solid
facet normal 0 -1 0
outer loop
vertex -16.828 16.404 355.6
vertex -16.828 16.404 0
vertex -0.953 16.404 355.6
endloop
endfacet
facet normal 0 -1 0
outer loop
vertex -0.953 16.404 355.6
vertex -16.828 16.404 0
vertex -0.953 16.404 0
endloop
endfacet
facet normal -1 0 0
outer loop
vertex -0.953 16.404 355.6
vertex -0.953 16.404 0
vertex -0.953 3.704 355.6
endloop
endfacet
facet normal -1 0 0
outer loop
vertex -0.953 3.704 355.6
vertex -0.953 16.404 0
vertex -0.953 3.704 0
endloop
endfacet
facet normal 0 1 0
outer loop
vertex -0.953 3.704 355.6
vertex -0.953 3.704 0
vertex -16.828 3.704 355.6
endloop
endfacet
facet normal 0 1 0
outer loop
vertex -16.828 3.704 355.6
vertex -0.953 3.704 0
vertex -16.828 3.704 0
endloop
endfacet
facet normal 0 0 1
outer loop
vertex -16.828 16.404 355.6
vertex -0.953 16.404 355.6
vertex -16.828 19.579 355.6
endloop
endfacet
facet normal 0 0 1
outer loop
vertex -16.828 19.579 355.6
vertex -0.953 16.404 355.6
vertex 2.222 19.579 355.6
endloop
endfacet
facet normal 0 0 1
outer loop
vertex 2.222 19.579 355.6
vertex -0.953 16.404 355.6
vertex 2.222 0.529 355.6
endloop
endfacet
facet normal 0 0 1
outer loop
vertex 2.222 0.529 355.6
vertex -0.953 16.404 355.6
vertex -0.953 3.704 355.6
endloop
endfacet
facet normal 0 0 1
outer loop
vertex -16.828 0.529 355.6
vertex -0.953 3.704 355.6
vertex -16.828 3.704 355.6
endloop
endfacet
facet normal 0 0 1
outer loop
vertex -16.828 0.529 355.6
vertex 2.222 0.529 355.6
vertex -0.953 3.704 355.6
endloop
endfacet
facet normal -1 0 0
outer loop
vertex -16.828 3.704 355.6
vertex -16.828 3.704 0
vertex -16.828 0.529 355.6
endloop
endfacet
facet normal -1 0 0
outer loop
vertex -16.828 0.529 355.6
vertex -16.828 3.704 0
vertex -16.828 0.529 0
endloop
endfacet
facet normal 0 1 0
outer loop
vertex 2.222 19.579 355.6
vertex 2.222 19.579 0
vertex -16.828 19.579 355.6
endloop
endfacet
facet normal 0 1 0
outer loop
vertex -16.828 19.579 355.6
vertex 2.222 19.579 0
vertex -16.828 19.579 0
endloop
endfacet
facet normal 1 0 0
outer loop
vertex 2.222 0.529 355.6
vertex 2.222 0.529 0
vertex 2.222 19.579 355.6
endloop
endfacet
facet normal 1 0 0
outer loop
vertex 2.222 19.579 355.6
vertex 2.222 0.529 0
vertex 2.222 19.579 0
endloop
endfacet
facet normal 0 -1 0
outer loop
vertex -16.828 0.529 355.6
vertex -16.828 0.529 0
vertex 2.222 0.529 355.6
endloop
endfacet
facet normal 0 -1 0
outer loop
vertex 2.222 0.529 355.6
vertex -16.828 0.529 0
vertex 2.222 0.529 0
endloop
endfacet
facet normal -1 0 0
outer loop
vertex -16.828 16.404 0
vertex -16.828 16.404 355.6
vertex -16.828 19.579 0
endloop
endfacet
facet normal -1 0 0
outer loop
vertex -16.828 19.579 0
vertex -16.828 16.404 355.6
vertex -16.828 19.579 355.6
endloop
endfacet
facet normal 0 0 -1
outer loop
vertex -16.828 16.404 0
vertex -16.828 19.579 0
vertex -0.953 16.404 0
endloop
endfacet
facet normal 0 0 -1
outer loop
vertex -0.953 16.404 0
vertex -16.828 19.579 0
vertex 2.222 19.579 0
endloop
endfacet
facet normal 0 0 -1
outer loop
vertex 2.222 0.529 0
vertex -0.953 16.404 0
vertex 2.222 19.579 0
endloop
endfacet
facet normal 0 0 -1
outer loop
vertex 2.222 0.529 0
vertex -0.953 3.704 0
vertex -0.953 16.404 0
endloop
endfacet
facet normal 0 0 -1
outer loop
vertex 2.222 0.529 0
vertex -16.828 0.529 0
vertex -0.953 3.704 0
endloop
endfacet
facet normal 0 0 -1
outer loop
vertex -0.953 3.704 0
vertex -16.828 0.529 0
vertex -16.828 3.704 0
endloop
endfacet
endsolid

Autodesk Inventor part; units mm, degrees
ref_plane "YZ Plane" through (0, 0, 0) normal (1, 0, 0) x (0, 1, 0)
ref_plane "XZ Plane" through (0, 0, 0) normal (0, 1, 0) x (-1, 0, 0)
ref_plane "XY Plane" through (0, 0, 0) normal (0, 0, 1) x (1, 0, 0)
sketch "Sketch1" plane through (0, 0, 0) normal (0, 0, 1) x (1, 0, 0)
  line L0 (-16.8285, 19.5793) -> (2.2215, 19.5793)
  line L1 (2.2215, 19.5793) -> (2.2215, 0.5293)
  line L2 (2.2215, 0.5293) -> (-16.8285, 0.5293)
  line L3 (-16.8285, 0.5293) -> (-16.8285, 19.5793)
  line L4 (-16.8285, 16.4043) -> (-0.9535, 16.4043)
  line L5 (-0.9535, 16.4043) -> (-0.9535, 3.7043)
  line L6 (-0.9535, 3.7043) -> (-16.8285, 3.7043)
  line L7 (-16.8285, 3.7043) -> (-16.8285, 16.4043)
  dimension "d0" = 19.05
  dimension "d1" = 19.05
  dimension "d2" = 3.175
  dimension "d3" = 3.175
  dimension "d4" = 3.175
extrude "Extrusion1" add sketch "Sketch1" along normal blind 355.6 contours L0 L1 L2 L3 L6 L5 L4
properties part number "GE-12016-08"
